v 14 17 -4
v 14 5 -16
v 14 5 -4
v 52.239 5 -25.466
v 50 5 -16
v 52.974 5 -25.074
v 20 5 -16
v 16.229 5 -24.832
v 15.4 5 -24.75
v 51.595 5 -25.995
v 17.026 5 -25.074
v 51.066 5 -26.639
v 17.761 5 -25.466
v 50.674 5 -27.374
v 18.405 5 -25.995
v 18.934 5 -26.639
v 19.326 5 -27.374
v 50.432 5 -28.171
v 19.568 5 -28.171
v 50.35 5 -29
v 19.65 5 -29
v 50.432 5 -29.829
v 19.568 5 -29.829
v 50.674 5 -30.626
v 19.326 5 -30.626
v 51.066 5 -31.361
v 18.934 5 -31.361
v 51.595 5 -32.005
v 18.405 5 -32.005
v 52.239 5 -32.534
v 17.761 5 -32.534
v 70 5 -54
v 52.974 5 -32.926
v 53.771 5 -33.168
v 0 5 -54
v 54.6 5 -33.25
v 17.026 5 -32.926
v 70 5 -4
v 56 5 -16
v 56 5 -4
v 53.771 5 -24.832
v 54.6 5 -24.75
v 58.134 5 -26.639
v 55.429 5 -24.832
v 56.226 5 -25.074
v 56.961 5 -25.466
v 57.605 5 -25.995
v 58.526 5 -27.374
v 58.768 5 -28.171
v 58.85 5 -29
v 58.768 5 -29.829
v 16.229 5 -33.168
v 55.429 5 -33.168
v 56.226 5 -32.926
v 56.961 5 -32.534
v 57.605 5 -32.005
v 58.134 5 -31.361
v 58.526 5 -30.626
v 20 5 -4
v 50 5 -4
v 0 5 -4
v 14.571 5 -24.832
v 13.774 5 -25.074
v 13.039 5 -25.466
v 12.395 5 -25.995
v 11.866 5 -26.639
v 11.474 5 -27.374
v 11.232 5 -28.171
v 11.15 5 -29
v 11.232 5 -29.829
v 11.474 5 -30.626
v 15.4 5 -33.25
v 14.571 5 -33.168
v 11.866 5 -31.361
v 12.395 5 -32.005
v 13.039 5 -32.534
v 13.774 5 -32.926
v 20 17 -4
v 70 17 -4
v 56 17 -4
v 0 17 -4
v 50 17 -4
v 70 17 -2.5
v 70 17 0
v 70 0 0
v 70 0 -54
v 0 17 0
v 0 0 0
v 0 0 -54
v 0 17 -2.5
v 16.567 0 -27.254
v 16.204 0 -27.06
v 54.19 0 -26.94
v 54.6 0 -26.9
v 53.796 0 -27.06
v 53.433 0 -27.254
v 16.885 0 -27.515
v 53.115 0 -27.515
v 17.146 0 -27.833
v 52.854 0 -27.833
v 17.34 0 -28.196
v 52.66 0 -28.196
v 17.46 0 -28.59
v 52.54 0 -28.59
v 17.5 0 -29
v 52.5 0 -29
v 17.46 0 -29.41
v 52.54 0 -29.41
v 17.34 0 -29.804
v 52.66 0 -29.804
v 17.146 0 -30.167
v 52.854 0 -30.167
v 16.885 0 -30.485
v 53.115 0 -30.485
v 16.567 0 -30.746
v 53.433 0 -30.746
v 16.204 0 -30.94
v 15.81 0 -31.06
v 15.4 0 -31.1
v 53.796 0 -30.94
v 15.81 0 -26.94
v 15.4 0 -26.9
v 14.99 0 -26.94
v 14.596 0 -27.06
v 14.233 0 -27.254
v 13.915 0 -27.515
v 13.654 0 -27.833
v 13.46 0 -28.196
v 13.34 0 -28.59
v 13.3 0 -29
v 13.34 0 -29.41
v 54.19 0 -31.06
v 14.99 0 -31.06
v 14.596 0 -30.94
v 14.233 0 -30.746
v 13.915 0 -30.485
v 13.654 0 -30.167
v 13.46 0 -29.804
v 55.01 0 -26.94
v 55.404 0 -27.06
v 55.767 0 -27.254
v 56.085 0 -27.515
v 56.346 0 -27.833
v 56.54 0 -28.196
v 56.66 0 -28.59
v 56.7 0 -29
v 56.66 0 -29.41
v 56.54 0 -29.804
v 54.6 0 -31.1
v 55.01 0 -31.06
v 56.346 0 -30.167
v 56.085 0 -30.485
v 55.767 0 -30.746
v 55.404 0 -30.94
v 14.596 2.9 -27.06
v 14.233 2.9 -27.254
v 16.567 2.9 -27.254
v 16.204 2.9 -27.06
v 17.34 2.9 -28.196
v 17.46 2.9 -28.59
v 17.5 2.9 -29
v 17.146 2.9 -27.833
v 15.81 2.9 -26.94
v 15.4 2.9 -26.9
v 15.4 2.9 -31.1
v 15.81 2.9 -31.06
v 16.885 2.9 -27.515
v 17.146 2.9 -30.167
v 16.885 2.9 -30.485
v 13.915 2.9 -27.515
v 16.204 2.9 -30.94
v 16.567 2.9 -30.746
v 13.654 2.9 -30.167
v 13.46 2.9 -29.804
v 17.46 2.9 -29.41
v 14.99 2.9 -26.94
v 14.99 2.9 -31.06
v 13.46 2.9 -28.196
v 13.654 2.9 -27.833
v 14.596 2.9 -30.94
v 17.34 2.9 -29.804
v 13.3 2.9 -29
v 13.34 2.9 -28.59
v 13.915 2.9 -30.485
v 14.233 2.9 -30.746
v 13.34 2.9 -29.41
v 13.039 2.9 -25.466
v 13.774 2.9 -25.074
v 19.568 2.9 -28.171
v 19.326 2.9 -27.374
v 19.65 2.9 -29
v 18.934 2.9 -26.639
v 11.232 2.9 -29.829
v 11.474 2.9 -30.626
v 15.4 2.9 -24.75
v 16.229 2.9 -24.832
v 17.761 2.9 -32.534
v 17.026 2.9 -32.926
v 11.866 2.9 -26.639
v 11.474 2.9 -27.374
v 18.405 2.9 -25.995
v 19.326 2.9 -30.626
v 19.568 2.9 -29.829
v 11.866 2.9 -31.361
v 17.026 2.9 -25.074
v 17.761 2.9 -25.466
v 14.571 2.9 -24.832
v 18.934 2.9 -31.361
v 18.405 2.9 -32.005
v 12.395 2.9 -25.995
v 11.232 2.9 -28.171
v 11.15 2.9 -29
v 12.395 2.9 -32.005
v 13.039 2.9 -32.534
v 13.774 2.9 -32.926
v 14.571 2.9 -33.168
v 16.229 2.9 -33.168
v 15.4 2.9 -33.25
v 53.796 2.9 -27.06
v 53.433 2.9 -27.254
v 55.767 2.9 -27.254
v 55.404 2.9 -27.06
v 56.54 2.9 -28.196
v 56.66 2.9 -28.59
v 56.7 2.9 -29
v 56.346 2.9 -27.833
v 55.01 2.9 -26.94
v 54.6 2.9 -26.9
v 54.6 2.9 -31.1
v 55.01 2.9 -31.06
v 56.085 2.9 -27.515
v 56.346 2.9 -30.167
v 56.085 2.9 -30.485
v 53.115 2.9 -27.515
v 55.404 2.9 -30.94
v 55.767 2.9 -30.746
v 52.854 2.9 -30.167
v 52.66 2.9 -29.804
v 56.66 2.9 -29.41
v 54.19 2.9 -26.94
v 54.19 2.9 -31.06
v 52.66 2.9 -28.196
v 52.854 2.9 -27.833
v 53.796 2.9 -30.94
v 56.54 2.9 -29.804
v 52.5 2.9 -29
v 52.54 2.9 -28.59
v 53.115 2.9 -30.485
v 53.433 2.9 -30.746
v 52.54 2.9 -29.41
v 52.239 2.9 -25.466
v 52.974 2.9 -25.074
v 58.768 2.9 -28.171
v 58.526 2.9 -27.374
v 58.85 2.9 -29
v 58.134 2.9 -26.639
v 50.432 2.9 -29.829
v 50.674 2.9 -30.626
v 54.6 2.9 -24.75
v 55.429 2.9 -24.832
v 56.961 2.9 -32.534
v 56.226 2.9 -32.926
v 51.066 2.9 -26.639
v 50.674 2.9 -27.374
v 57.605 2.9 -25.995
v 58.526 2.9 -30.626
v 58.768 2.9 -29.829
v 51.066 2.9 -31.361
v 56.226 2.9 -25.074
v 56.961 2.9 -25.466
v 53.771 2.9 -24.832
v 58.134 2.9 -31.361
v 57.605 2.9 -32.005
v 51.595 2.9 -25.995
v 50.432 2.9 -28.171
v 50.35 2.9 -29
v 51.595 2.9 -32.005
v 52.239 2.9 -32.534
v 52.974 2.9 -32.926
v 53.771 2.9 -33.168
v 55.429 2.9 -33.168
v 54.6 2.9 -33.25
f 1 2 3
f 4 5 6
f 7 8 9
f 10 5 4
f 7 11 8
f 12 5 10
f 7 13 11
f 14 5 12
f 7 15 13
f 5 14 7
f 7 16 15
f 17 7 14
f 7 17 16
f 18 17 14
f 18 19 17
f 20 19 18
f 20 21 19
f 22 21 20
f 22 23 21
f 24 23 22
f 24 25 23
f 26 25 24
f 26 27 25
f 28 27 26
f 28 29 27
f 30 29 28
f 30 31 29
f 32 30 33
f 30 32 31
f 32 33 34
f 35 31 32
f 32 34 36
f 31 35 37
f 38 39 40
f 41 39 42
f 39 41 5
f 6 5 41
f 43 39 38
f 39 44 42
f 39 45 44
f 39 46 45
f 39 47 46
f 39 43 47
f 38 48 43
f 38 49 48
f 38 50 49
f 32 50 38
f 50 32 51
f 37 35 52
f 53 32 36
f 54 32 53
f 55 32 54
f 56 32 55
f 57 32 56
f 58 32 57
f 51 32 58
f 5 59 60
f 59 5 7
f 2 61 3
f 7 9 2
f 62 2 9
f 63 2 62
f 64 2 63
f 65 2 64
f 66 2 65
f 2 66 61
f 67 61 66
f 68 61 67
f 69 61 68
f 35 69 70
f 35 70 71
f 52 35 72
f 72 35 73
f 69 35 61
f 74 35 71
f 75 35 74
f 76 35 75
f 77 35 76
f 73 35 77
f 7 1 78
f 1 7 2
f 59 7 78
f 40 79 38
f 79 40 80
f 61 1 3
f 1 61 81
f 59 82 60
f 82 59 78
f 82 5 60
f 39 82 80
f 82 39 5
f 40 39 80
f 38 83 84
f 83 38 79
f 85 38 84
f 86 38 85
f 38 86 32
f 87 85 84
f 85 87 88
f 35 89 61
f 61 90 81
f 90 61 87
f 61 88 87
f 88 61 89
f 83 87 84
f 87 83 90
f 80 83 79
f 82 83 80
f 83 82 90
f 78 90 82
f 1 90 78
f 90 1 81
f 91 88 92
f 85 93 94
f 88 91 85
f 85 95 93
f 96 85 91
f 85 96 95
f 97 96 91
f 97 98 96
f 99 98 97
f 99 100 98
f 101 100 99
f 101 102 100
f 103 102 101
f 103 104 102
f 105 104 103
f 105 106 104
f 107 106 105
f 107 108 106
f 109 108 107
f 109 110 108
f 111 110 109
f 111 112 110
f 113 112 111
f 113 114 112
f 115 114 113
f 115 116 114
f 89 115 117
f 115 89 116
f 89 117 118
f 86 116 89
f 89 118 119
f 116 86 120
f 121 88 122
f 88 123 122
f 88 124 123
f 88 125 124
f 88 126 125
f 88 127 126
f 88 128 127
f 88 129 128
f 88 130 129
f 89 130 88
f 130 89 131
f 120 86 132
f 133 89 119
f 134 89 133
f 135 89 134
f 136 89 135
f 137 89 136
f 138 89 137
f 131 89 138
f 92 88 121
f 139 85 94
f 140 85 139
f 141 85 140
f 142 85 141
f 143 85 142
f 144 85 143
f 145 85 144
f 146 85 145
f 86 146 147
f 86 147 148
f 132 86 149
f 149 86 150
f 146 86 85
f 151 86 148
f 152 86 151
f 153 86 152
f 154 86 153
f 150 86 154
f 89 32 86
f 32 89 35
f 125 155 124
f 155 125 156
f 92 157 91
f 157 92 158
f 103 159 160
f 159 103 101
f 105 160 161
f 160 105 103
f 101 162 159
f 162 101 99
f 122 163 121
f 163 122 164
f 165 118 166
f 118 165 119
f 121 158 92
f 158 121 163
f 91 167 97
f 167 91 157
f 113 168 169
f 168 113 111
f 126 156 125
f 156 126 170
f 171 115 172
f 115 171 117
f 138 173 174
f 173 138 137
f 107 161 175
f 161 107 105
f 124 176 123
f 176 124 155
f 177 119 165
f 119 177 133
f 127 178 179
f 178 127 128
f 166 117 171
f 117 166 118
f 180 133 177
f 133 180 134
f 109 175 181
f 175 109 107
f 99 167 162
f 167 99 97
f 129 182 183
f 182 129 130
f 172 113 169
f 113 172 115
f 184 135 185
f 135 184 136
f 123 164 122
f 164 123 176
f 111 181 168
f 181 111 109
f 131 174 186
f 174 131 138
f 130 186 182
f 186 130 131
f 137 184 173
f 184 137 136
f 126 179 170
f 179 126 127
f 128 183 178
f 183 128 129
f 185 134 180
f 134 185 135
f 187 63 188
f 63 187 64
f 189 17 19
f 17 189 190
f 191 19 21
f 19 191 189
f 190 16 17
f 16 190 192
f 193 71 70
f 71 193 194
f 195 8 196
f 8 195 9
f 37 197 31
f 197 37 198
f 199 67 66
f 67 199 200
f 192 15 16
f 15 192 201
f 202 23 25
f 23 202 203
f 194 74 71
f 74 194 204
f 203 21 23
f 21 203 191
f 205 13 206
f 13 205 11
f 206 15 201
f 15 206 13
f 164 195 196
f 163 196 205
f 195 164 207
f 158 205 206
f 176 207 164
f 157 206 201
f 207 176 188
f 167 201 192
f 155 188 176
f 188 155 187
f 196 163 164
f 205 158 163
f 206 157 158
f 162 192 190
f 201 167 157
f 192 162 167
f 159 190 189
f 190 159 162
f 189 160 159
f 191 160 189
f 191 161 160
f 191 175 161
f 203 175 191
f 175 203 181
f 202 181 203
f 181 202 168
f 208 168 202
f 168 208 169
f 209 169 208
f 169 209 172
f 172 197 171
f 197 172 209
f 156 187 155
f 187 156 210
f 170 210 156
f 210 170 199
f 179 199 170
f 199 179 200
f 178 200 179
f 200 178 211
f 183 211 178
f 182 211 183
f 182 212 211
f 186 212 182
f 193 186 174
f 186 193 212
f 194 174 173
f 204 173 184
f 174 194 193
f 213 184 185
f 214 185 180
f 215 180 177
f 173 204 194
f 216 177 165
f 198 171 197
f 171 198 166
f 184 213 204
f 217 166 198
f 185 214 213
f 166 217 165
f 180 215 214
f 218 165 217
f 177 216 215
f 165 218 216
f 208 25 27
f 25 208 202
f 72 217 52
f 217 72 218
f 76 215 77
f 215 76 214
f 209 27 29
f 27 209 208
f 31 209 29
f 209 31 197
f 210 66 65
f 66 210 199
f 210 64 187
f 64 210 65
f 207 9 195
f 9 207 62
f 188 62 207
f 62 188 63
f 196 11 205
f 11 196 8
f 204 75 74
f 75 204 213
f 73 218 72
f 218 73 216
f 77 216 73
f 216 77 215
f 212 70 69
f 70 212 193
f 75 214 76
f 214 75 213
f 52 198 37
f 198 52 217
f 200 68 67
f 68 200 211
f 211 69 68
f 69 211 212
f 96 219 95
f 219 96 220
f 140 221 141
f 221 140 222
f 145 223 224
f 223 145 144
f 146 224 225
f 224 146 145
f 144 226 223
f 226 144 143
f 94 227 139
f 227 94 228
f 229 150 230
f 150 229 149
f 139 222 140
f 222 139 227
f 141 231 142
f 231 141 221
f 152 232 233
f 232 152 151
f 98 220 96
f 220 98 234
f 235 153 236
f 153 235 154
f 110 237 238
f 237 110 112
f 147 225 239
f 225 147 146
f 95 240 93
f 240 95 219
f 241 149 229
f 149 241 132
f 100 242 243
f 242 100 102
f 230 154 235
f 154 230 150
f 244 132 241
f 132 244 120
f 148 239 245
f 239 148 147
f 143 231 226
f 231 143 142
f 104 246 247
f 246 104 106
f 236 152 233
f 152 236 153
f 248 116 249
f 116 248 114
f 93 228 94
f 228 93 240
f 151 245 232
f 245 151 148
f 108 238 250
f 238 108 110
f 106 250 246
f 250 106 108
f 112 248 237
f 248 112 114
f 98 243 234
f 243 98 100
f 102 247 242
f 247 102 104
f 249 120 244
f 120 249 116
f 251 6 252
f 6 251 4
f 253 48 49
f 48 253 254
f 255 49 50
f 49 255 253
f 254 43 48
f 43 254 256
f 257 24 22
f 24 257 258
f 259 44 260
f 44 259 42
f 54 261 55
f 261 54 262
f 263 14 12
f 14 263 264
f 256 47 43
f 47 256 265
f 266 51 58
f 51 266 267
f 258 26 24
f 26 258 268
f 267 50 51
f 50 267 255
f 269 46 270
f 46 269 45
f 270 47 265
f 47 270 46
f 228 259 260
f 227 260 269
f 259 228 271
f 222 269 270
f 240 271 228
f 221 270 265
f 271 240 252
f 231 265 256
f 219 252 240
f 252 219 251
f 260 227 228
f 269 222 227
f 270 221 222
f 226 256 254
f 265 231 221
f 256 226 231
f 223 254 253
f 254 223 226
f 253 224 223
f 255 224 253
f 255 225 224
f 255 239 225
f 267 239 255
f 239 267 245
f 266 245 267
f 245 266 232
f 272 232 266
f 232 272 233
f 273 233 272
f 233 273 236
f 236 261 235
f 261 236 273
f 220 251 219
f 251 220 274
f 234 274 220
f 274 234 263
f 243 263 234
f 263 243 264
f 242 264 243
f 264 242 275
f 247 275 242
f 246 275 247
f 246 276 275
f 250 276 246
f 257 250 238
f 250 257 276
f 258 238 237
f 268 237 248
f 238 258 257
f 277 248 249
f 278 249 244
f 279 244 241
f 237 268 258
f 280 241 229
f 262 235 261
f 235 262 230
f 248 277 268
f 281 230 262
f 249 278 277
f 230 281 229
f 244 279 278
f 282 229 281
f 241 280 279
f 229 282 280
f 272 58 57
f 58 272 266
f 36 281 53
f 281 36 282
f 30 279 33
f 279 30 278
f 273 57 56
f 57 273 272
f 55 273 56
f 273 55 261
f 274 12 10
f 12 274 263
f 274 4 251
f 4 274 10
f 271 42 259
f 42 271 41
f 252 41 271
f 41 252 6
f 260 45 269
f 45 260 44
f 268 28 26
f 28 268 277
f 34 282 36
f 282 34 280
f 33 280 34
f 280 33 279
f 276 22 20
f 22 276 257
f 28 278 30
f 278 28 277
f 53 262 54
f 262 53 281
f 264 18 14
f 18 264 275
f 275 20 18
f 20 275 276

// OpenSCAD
// ======================================================================
// wood_holder.scad  --  HOLZCASE (7U/84HP, 19 mm Holz)
//
// Block 3, Teil 1: AUFLAGE-HALTERUNG. Wird mit Holzschrauben VON INNEN an
// die kurze Innenwand (links/rechts, wo die Brackets sitzen) geschraubt.
// Der Bracket-FLANSCH (gleicher wie im Koffer) liegt auf der Schiene auf,
// damit der Rahmen nicht ins Case absinkt. Die Schiene sitzt so tief unter
// der Case-Oeffnung, dass die Module oben buendig mit der Oeffnungskante sind.
//
// Der Rahmen ist damit zwischen Koffer und Holzcase wechselbar (gleiches
// Bracket). Teil 2 (Schieber ueber die kurzen Bracket-Kanten) kommt separat.
//
// ALLE Masse zum FEINJUSTIEREN (Fotos folgen). Der WICHTIGSTE Wert ist
// rest_depth -- am echten Case messen und anpassen.
// ======================================================================
$fn = 32;

// ---- Kern-Wert (JUSTIEREN am echten Case) ----
rest_depth   = 4;    // Flansch-UNTERSEITE unter der Oeffnungskante [mm].
                     //   Flansch ist 4 mm dick, Modul-Front = Oberkante Flansch;
                     //   4 mm => Module buendig mit der Oeffnung. Miss nach!

// ---- aus bracket.scad uebernommen (Flansch-Geometrie) ----
flange_reach   = 8;   // wie weit der Flansch zur Wand reicht
frame_wall_gap = 7;   // Flansch-Aussenkante ~7 mm von der Wand (wie im Koffer)

// ---- Halterung ----
hold_len     = 70;    // Laenge entlang der Wand
back_t       = 5;     // Rueckplatte (liegt an der Holzwand)
back_h       = 50;    // Rueckplatte nach unten (Platz fuer 2 Schrauben)
shelf_reach  = 12;    // wie weit die Schiene von der Wand in den Case reicht
shelf_t      = 4;     // Schienen-Dicke
lead_in      = 2.5;   // Anlaufschraege vorn oben (zentriert den Flansch beim Einlegen)

// ---- Holzschrauben (von innen, waagerecht in die Wand) ----
wood_screw_d    = 4.2;   // Durchgangsloch fuer 4 mm Holzschraube
wood_screw_head = 8.5;   // Senkung fuer den Kopf (innenseitig)
wood_screw_ct   = 2.6;   // Senkungstiefe

// Y=0 = Wand (Holz-Innenflaeche). Schienen-Oberkante = z=0 (dort liegt der
// Flansch). Beim Einbau sitzt z=0 also rest_depth unter der Oeffnungskante.
module wood_holder() {
    difference() {
        union() {
            // Schiene: Oberkante z=0, von der Wand (Y=0) shelf_reach in den Case
            translate([0, 0, -shelf_t])
                cube([hold_len, back_t + shelf_reach, shelf_t]);
            // Rueckplatte an der Wand (Y=0..back_t), nach unten
            translate([0, 0, -shelf_t - back_h])
                cube([hold_len, back_t, back_h + shelf_t]);
            // 2 Dreiecks-Gussets unter der Schiene (steift die Auskragung)
            for (gx = [hold_len*0.2, hold_len*0.8 - 6])
                translate([gx, back_t, -shelf_t]) rotate([90,0,90])
                    linear_extrude(6) polygon([[0,0],[shelf_reach,0],[0,-shelf_reach]]);
        }
        // Anlaufschraege vorn oben (Innenkante der Schiene)
        translate([-1, back_t + shelf_reach, 0]) rotate([0,90,0])
            linear_extrude(hold_len+2) polygon([[0,0],[lead_in,0],[0,lead_in]]);
        // 2 Holzschrauben von INNEN (Kopf innen versenkt), waagerecht in die Wand
        for (x = [hold_len*0.22, hold_len*0.78])
            translate([x, back_t + 0.5, -shelf_t - back_h*0.5]) rotate([90, 0, 0]) {
                cylinder(d = wood_screw_d, h = back_t + 2);
                cylinder(d = wood_screw_head, h = wood_screw_ct);   // Senkung innenseitig
            }
    }
}
wood_holder();
